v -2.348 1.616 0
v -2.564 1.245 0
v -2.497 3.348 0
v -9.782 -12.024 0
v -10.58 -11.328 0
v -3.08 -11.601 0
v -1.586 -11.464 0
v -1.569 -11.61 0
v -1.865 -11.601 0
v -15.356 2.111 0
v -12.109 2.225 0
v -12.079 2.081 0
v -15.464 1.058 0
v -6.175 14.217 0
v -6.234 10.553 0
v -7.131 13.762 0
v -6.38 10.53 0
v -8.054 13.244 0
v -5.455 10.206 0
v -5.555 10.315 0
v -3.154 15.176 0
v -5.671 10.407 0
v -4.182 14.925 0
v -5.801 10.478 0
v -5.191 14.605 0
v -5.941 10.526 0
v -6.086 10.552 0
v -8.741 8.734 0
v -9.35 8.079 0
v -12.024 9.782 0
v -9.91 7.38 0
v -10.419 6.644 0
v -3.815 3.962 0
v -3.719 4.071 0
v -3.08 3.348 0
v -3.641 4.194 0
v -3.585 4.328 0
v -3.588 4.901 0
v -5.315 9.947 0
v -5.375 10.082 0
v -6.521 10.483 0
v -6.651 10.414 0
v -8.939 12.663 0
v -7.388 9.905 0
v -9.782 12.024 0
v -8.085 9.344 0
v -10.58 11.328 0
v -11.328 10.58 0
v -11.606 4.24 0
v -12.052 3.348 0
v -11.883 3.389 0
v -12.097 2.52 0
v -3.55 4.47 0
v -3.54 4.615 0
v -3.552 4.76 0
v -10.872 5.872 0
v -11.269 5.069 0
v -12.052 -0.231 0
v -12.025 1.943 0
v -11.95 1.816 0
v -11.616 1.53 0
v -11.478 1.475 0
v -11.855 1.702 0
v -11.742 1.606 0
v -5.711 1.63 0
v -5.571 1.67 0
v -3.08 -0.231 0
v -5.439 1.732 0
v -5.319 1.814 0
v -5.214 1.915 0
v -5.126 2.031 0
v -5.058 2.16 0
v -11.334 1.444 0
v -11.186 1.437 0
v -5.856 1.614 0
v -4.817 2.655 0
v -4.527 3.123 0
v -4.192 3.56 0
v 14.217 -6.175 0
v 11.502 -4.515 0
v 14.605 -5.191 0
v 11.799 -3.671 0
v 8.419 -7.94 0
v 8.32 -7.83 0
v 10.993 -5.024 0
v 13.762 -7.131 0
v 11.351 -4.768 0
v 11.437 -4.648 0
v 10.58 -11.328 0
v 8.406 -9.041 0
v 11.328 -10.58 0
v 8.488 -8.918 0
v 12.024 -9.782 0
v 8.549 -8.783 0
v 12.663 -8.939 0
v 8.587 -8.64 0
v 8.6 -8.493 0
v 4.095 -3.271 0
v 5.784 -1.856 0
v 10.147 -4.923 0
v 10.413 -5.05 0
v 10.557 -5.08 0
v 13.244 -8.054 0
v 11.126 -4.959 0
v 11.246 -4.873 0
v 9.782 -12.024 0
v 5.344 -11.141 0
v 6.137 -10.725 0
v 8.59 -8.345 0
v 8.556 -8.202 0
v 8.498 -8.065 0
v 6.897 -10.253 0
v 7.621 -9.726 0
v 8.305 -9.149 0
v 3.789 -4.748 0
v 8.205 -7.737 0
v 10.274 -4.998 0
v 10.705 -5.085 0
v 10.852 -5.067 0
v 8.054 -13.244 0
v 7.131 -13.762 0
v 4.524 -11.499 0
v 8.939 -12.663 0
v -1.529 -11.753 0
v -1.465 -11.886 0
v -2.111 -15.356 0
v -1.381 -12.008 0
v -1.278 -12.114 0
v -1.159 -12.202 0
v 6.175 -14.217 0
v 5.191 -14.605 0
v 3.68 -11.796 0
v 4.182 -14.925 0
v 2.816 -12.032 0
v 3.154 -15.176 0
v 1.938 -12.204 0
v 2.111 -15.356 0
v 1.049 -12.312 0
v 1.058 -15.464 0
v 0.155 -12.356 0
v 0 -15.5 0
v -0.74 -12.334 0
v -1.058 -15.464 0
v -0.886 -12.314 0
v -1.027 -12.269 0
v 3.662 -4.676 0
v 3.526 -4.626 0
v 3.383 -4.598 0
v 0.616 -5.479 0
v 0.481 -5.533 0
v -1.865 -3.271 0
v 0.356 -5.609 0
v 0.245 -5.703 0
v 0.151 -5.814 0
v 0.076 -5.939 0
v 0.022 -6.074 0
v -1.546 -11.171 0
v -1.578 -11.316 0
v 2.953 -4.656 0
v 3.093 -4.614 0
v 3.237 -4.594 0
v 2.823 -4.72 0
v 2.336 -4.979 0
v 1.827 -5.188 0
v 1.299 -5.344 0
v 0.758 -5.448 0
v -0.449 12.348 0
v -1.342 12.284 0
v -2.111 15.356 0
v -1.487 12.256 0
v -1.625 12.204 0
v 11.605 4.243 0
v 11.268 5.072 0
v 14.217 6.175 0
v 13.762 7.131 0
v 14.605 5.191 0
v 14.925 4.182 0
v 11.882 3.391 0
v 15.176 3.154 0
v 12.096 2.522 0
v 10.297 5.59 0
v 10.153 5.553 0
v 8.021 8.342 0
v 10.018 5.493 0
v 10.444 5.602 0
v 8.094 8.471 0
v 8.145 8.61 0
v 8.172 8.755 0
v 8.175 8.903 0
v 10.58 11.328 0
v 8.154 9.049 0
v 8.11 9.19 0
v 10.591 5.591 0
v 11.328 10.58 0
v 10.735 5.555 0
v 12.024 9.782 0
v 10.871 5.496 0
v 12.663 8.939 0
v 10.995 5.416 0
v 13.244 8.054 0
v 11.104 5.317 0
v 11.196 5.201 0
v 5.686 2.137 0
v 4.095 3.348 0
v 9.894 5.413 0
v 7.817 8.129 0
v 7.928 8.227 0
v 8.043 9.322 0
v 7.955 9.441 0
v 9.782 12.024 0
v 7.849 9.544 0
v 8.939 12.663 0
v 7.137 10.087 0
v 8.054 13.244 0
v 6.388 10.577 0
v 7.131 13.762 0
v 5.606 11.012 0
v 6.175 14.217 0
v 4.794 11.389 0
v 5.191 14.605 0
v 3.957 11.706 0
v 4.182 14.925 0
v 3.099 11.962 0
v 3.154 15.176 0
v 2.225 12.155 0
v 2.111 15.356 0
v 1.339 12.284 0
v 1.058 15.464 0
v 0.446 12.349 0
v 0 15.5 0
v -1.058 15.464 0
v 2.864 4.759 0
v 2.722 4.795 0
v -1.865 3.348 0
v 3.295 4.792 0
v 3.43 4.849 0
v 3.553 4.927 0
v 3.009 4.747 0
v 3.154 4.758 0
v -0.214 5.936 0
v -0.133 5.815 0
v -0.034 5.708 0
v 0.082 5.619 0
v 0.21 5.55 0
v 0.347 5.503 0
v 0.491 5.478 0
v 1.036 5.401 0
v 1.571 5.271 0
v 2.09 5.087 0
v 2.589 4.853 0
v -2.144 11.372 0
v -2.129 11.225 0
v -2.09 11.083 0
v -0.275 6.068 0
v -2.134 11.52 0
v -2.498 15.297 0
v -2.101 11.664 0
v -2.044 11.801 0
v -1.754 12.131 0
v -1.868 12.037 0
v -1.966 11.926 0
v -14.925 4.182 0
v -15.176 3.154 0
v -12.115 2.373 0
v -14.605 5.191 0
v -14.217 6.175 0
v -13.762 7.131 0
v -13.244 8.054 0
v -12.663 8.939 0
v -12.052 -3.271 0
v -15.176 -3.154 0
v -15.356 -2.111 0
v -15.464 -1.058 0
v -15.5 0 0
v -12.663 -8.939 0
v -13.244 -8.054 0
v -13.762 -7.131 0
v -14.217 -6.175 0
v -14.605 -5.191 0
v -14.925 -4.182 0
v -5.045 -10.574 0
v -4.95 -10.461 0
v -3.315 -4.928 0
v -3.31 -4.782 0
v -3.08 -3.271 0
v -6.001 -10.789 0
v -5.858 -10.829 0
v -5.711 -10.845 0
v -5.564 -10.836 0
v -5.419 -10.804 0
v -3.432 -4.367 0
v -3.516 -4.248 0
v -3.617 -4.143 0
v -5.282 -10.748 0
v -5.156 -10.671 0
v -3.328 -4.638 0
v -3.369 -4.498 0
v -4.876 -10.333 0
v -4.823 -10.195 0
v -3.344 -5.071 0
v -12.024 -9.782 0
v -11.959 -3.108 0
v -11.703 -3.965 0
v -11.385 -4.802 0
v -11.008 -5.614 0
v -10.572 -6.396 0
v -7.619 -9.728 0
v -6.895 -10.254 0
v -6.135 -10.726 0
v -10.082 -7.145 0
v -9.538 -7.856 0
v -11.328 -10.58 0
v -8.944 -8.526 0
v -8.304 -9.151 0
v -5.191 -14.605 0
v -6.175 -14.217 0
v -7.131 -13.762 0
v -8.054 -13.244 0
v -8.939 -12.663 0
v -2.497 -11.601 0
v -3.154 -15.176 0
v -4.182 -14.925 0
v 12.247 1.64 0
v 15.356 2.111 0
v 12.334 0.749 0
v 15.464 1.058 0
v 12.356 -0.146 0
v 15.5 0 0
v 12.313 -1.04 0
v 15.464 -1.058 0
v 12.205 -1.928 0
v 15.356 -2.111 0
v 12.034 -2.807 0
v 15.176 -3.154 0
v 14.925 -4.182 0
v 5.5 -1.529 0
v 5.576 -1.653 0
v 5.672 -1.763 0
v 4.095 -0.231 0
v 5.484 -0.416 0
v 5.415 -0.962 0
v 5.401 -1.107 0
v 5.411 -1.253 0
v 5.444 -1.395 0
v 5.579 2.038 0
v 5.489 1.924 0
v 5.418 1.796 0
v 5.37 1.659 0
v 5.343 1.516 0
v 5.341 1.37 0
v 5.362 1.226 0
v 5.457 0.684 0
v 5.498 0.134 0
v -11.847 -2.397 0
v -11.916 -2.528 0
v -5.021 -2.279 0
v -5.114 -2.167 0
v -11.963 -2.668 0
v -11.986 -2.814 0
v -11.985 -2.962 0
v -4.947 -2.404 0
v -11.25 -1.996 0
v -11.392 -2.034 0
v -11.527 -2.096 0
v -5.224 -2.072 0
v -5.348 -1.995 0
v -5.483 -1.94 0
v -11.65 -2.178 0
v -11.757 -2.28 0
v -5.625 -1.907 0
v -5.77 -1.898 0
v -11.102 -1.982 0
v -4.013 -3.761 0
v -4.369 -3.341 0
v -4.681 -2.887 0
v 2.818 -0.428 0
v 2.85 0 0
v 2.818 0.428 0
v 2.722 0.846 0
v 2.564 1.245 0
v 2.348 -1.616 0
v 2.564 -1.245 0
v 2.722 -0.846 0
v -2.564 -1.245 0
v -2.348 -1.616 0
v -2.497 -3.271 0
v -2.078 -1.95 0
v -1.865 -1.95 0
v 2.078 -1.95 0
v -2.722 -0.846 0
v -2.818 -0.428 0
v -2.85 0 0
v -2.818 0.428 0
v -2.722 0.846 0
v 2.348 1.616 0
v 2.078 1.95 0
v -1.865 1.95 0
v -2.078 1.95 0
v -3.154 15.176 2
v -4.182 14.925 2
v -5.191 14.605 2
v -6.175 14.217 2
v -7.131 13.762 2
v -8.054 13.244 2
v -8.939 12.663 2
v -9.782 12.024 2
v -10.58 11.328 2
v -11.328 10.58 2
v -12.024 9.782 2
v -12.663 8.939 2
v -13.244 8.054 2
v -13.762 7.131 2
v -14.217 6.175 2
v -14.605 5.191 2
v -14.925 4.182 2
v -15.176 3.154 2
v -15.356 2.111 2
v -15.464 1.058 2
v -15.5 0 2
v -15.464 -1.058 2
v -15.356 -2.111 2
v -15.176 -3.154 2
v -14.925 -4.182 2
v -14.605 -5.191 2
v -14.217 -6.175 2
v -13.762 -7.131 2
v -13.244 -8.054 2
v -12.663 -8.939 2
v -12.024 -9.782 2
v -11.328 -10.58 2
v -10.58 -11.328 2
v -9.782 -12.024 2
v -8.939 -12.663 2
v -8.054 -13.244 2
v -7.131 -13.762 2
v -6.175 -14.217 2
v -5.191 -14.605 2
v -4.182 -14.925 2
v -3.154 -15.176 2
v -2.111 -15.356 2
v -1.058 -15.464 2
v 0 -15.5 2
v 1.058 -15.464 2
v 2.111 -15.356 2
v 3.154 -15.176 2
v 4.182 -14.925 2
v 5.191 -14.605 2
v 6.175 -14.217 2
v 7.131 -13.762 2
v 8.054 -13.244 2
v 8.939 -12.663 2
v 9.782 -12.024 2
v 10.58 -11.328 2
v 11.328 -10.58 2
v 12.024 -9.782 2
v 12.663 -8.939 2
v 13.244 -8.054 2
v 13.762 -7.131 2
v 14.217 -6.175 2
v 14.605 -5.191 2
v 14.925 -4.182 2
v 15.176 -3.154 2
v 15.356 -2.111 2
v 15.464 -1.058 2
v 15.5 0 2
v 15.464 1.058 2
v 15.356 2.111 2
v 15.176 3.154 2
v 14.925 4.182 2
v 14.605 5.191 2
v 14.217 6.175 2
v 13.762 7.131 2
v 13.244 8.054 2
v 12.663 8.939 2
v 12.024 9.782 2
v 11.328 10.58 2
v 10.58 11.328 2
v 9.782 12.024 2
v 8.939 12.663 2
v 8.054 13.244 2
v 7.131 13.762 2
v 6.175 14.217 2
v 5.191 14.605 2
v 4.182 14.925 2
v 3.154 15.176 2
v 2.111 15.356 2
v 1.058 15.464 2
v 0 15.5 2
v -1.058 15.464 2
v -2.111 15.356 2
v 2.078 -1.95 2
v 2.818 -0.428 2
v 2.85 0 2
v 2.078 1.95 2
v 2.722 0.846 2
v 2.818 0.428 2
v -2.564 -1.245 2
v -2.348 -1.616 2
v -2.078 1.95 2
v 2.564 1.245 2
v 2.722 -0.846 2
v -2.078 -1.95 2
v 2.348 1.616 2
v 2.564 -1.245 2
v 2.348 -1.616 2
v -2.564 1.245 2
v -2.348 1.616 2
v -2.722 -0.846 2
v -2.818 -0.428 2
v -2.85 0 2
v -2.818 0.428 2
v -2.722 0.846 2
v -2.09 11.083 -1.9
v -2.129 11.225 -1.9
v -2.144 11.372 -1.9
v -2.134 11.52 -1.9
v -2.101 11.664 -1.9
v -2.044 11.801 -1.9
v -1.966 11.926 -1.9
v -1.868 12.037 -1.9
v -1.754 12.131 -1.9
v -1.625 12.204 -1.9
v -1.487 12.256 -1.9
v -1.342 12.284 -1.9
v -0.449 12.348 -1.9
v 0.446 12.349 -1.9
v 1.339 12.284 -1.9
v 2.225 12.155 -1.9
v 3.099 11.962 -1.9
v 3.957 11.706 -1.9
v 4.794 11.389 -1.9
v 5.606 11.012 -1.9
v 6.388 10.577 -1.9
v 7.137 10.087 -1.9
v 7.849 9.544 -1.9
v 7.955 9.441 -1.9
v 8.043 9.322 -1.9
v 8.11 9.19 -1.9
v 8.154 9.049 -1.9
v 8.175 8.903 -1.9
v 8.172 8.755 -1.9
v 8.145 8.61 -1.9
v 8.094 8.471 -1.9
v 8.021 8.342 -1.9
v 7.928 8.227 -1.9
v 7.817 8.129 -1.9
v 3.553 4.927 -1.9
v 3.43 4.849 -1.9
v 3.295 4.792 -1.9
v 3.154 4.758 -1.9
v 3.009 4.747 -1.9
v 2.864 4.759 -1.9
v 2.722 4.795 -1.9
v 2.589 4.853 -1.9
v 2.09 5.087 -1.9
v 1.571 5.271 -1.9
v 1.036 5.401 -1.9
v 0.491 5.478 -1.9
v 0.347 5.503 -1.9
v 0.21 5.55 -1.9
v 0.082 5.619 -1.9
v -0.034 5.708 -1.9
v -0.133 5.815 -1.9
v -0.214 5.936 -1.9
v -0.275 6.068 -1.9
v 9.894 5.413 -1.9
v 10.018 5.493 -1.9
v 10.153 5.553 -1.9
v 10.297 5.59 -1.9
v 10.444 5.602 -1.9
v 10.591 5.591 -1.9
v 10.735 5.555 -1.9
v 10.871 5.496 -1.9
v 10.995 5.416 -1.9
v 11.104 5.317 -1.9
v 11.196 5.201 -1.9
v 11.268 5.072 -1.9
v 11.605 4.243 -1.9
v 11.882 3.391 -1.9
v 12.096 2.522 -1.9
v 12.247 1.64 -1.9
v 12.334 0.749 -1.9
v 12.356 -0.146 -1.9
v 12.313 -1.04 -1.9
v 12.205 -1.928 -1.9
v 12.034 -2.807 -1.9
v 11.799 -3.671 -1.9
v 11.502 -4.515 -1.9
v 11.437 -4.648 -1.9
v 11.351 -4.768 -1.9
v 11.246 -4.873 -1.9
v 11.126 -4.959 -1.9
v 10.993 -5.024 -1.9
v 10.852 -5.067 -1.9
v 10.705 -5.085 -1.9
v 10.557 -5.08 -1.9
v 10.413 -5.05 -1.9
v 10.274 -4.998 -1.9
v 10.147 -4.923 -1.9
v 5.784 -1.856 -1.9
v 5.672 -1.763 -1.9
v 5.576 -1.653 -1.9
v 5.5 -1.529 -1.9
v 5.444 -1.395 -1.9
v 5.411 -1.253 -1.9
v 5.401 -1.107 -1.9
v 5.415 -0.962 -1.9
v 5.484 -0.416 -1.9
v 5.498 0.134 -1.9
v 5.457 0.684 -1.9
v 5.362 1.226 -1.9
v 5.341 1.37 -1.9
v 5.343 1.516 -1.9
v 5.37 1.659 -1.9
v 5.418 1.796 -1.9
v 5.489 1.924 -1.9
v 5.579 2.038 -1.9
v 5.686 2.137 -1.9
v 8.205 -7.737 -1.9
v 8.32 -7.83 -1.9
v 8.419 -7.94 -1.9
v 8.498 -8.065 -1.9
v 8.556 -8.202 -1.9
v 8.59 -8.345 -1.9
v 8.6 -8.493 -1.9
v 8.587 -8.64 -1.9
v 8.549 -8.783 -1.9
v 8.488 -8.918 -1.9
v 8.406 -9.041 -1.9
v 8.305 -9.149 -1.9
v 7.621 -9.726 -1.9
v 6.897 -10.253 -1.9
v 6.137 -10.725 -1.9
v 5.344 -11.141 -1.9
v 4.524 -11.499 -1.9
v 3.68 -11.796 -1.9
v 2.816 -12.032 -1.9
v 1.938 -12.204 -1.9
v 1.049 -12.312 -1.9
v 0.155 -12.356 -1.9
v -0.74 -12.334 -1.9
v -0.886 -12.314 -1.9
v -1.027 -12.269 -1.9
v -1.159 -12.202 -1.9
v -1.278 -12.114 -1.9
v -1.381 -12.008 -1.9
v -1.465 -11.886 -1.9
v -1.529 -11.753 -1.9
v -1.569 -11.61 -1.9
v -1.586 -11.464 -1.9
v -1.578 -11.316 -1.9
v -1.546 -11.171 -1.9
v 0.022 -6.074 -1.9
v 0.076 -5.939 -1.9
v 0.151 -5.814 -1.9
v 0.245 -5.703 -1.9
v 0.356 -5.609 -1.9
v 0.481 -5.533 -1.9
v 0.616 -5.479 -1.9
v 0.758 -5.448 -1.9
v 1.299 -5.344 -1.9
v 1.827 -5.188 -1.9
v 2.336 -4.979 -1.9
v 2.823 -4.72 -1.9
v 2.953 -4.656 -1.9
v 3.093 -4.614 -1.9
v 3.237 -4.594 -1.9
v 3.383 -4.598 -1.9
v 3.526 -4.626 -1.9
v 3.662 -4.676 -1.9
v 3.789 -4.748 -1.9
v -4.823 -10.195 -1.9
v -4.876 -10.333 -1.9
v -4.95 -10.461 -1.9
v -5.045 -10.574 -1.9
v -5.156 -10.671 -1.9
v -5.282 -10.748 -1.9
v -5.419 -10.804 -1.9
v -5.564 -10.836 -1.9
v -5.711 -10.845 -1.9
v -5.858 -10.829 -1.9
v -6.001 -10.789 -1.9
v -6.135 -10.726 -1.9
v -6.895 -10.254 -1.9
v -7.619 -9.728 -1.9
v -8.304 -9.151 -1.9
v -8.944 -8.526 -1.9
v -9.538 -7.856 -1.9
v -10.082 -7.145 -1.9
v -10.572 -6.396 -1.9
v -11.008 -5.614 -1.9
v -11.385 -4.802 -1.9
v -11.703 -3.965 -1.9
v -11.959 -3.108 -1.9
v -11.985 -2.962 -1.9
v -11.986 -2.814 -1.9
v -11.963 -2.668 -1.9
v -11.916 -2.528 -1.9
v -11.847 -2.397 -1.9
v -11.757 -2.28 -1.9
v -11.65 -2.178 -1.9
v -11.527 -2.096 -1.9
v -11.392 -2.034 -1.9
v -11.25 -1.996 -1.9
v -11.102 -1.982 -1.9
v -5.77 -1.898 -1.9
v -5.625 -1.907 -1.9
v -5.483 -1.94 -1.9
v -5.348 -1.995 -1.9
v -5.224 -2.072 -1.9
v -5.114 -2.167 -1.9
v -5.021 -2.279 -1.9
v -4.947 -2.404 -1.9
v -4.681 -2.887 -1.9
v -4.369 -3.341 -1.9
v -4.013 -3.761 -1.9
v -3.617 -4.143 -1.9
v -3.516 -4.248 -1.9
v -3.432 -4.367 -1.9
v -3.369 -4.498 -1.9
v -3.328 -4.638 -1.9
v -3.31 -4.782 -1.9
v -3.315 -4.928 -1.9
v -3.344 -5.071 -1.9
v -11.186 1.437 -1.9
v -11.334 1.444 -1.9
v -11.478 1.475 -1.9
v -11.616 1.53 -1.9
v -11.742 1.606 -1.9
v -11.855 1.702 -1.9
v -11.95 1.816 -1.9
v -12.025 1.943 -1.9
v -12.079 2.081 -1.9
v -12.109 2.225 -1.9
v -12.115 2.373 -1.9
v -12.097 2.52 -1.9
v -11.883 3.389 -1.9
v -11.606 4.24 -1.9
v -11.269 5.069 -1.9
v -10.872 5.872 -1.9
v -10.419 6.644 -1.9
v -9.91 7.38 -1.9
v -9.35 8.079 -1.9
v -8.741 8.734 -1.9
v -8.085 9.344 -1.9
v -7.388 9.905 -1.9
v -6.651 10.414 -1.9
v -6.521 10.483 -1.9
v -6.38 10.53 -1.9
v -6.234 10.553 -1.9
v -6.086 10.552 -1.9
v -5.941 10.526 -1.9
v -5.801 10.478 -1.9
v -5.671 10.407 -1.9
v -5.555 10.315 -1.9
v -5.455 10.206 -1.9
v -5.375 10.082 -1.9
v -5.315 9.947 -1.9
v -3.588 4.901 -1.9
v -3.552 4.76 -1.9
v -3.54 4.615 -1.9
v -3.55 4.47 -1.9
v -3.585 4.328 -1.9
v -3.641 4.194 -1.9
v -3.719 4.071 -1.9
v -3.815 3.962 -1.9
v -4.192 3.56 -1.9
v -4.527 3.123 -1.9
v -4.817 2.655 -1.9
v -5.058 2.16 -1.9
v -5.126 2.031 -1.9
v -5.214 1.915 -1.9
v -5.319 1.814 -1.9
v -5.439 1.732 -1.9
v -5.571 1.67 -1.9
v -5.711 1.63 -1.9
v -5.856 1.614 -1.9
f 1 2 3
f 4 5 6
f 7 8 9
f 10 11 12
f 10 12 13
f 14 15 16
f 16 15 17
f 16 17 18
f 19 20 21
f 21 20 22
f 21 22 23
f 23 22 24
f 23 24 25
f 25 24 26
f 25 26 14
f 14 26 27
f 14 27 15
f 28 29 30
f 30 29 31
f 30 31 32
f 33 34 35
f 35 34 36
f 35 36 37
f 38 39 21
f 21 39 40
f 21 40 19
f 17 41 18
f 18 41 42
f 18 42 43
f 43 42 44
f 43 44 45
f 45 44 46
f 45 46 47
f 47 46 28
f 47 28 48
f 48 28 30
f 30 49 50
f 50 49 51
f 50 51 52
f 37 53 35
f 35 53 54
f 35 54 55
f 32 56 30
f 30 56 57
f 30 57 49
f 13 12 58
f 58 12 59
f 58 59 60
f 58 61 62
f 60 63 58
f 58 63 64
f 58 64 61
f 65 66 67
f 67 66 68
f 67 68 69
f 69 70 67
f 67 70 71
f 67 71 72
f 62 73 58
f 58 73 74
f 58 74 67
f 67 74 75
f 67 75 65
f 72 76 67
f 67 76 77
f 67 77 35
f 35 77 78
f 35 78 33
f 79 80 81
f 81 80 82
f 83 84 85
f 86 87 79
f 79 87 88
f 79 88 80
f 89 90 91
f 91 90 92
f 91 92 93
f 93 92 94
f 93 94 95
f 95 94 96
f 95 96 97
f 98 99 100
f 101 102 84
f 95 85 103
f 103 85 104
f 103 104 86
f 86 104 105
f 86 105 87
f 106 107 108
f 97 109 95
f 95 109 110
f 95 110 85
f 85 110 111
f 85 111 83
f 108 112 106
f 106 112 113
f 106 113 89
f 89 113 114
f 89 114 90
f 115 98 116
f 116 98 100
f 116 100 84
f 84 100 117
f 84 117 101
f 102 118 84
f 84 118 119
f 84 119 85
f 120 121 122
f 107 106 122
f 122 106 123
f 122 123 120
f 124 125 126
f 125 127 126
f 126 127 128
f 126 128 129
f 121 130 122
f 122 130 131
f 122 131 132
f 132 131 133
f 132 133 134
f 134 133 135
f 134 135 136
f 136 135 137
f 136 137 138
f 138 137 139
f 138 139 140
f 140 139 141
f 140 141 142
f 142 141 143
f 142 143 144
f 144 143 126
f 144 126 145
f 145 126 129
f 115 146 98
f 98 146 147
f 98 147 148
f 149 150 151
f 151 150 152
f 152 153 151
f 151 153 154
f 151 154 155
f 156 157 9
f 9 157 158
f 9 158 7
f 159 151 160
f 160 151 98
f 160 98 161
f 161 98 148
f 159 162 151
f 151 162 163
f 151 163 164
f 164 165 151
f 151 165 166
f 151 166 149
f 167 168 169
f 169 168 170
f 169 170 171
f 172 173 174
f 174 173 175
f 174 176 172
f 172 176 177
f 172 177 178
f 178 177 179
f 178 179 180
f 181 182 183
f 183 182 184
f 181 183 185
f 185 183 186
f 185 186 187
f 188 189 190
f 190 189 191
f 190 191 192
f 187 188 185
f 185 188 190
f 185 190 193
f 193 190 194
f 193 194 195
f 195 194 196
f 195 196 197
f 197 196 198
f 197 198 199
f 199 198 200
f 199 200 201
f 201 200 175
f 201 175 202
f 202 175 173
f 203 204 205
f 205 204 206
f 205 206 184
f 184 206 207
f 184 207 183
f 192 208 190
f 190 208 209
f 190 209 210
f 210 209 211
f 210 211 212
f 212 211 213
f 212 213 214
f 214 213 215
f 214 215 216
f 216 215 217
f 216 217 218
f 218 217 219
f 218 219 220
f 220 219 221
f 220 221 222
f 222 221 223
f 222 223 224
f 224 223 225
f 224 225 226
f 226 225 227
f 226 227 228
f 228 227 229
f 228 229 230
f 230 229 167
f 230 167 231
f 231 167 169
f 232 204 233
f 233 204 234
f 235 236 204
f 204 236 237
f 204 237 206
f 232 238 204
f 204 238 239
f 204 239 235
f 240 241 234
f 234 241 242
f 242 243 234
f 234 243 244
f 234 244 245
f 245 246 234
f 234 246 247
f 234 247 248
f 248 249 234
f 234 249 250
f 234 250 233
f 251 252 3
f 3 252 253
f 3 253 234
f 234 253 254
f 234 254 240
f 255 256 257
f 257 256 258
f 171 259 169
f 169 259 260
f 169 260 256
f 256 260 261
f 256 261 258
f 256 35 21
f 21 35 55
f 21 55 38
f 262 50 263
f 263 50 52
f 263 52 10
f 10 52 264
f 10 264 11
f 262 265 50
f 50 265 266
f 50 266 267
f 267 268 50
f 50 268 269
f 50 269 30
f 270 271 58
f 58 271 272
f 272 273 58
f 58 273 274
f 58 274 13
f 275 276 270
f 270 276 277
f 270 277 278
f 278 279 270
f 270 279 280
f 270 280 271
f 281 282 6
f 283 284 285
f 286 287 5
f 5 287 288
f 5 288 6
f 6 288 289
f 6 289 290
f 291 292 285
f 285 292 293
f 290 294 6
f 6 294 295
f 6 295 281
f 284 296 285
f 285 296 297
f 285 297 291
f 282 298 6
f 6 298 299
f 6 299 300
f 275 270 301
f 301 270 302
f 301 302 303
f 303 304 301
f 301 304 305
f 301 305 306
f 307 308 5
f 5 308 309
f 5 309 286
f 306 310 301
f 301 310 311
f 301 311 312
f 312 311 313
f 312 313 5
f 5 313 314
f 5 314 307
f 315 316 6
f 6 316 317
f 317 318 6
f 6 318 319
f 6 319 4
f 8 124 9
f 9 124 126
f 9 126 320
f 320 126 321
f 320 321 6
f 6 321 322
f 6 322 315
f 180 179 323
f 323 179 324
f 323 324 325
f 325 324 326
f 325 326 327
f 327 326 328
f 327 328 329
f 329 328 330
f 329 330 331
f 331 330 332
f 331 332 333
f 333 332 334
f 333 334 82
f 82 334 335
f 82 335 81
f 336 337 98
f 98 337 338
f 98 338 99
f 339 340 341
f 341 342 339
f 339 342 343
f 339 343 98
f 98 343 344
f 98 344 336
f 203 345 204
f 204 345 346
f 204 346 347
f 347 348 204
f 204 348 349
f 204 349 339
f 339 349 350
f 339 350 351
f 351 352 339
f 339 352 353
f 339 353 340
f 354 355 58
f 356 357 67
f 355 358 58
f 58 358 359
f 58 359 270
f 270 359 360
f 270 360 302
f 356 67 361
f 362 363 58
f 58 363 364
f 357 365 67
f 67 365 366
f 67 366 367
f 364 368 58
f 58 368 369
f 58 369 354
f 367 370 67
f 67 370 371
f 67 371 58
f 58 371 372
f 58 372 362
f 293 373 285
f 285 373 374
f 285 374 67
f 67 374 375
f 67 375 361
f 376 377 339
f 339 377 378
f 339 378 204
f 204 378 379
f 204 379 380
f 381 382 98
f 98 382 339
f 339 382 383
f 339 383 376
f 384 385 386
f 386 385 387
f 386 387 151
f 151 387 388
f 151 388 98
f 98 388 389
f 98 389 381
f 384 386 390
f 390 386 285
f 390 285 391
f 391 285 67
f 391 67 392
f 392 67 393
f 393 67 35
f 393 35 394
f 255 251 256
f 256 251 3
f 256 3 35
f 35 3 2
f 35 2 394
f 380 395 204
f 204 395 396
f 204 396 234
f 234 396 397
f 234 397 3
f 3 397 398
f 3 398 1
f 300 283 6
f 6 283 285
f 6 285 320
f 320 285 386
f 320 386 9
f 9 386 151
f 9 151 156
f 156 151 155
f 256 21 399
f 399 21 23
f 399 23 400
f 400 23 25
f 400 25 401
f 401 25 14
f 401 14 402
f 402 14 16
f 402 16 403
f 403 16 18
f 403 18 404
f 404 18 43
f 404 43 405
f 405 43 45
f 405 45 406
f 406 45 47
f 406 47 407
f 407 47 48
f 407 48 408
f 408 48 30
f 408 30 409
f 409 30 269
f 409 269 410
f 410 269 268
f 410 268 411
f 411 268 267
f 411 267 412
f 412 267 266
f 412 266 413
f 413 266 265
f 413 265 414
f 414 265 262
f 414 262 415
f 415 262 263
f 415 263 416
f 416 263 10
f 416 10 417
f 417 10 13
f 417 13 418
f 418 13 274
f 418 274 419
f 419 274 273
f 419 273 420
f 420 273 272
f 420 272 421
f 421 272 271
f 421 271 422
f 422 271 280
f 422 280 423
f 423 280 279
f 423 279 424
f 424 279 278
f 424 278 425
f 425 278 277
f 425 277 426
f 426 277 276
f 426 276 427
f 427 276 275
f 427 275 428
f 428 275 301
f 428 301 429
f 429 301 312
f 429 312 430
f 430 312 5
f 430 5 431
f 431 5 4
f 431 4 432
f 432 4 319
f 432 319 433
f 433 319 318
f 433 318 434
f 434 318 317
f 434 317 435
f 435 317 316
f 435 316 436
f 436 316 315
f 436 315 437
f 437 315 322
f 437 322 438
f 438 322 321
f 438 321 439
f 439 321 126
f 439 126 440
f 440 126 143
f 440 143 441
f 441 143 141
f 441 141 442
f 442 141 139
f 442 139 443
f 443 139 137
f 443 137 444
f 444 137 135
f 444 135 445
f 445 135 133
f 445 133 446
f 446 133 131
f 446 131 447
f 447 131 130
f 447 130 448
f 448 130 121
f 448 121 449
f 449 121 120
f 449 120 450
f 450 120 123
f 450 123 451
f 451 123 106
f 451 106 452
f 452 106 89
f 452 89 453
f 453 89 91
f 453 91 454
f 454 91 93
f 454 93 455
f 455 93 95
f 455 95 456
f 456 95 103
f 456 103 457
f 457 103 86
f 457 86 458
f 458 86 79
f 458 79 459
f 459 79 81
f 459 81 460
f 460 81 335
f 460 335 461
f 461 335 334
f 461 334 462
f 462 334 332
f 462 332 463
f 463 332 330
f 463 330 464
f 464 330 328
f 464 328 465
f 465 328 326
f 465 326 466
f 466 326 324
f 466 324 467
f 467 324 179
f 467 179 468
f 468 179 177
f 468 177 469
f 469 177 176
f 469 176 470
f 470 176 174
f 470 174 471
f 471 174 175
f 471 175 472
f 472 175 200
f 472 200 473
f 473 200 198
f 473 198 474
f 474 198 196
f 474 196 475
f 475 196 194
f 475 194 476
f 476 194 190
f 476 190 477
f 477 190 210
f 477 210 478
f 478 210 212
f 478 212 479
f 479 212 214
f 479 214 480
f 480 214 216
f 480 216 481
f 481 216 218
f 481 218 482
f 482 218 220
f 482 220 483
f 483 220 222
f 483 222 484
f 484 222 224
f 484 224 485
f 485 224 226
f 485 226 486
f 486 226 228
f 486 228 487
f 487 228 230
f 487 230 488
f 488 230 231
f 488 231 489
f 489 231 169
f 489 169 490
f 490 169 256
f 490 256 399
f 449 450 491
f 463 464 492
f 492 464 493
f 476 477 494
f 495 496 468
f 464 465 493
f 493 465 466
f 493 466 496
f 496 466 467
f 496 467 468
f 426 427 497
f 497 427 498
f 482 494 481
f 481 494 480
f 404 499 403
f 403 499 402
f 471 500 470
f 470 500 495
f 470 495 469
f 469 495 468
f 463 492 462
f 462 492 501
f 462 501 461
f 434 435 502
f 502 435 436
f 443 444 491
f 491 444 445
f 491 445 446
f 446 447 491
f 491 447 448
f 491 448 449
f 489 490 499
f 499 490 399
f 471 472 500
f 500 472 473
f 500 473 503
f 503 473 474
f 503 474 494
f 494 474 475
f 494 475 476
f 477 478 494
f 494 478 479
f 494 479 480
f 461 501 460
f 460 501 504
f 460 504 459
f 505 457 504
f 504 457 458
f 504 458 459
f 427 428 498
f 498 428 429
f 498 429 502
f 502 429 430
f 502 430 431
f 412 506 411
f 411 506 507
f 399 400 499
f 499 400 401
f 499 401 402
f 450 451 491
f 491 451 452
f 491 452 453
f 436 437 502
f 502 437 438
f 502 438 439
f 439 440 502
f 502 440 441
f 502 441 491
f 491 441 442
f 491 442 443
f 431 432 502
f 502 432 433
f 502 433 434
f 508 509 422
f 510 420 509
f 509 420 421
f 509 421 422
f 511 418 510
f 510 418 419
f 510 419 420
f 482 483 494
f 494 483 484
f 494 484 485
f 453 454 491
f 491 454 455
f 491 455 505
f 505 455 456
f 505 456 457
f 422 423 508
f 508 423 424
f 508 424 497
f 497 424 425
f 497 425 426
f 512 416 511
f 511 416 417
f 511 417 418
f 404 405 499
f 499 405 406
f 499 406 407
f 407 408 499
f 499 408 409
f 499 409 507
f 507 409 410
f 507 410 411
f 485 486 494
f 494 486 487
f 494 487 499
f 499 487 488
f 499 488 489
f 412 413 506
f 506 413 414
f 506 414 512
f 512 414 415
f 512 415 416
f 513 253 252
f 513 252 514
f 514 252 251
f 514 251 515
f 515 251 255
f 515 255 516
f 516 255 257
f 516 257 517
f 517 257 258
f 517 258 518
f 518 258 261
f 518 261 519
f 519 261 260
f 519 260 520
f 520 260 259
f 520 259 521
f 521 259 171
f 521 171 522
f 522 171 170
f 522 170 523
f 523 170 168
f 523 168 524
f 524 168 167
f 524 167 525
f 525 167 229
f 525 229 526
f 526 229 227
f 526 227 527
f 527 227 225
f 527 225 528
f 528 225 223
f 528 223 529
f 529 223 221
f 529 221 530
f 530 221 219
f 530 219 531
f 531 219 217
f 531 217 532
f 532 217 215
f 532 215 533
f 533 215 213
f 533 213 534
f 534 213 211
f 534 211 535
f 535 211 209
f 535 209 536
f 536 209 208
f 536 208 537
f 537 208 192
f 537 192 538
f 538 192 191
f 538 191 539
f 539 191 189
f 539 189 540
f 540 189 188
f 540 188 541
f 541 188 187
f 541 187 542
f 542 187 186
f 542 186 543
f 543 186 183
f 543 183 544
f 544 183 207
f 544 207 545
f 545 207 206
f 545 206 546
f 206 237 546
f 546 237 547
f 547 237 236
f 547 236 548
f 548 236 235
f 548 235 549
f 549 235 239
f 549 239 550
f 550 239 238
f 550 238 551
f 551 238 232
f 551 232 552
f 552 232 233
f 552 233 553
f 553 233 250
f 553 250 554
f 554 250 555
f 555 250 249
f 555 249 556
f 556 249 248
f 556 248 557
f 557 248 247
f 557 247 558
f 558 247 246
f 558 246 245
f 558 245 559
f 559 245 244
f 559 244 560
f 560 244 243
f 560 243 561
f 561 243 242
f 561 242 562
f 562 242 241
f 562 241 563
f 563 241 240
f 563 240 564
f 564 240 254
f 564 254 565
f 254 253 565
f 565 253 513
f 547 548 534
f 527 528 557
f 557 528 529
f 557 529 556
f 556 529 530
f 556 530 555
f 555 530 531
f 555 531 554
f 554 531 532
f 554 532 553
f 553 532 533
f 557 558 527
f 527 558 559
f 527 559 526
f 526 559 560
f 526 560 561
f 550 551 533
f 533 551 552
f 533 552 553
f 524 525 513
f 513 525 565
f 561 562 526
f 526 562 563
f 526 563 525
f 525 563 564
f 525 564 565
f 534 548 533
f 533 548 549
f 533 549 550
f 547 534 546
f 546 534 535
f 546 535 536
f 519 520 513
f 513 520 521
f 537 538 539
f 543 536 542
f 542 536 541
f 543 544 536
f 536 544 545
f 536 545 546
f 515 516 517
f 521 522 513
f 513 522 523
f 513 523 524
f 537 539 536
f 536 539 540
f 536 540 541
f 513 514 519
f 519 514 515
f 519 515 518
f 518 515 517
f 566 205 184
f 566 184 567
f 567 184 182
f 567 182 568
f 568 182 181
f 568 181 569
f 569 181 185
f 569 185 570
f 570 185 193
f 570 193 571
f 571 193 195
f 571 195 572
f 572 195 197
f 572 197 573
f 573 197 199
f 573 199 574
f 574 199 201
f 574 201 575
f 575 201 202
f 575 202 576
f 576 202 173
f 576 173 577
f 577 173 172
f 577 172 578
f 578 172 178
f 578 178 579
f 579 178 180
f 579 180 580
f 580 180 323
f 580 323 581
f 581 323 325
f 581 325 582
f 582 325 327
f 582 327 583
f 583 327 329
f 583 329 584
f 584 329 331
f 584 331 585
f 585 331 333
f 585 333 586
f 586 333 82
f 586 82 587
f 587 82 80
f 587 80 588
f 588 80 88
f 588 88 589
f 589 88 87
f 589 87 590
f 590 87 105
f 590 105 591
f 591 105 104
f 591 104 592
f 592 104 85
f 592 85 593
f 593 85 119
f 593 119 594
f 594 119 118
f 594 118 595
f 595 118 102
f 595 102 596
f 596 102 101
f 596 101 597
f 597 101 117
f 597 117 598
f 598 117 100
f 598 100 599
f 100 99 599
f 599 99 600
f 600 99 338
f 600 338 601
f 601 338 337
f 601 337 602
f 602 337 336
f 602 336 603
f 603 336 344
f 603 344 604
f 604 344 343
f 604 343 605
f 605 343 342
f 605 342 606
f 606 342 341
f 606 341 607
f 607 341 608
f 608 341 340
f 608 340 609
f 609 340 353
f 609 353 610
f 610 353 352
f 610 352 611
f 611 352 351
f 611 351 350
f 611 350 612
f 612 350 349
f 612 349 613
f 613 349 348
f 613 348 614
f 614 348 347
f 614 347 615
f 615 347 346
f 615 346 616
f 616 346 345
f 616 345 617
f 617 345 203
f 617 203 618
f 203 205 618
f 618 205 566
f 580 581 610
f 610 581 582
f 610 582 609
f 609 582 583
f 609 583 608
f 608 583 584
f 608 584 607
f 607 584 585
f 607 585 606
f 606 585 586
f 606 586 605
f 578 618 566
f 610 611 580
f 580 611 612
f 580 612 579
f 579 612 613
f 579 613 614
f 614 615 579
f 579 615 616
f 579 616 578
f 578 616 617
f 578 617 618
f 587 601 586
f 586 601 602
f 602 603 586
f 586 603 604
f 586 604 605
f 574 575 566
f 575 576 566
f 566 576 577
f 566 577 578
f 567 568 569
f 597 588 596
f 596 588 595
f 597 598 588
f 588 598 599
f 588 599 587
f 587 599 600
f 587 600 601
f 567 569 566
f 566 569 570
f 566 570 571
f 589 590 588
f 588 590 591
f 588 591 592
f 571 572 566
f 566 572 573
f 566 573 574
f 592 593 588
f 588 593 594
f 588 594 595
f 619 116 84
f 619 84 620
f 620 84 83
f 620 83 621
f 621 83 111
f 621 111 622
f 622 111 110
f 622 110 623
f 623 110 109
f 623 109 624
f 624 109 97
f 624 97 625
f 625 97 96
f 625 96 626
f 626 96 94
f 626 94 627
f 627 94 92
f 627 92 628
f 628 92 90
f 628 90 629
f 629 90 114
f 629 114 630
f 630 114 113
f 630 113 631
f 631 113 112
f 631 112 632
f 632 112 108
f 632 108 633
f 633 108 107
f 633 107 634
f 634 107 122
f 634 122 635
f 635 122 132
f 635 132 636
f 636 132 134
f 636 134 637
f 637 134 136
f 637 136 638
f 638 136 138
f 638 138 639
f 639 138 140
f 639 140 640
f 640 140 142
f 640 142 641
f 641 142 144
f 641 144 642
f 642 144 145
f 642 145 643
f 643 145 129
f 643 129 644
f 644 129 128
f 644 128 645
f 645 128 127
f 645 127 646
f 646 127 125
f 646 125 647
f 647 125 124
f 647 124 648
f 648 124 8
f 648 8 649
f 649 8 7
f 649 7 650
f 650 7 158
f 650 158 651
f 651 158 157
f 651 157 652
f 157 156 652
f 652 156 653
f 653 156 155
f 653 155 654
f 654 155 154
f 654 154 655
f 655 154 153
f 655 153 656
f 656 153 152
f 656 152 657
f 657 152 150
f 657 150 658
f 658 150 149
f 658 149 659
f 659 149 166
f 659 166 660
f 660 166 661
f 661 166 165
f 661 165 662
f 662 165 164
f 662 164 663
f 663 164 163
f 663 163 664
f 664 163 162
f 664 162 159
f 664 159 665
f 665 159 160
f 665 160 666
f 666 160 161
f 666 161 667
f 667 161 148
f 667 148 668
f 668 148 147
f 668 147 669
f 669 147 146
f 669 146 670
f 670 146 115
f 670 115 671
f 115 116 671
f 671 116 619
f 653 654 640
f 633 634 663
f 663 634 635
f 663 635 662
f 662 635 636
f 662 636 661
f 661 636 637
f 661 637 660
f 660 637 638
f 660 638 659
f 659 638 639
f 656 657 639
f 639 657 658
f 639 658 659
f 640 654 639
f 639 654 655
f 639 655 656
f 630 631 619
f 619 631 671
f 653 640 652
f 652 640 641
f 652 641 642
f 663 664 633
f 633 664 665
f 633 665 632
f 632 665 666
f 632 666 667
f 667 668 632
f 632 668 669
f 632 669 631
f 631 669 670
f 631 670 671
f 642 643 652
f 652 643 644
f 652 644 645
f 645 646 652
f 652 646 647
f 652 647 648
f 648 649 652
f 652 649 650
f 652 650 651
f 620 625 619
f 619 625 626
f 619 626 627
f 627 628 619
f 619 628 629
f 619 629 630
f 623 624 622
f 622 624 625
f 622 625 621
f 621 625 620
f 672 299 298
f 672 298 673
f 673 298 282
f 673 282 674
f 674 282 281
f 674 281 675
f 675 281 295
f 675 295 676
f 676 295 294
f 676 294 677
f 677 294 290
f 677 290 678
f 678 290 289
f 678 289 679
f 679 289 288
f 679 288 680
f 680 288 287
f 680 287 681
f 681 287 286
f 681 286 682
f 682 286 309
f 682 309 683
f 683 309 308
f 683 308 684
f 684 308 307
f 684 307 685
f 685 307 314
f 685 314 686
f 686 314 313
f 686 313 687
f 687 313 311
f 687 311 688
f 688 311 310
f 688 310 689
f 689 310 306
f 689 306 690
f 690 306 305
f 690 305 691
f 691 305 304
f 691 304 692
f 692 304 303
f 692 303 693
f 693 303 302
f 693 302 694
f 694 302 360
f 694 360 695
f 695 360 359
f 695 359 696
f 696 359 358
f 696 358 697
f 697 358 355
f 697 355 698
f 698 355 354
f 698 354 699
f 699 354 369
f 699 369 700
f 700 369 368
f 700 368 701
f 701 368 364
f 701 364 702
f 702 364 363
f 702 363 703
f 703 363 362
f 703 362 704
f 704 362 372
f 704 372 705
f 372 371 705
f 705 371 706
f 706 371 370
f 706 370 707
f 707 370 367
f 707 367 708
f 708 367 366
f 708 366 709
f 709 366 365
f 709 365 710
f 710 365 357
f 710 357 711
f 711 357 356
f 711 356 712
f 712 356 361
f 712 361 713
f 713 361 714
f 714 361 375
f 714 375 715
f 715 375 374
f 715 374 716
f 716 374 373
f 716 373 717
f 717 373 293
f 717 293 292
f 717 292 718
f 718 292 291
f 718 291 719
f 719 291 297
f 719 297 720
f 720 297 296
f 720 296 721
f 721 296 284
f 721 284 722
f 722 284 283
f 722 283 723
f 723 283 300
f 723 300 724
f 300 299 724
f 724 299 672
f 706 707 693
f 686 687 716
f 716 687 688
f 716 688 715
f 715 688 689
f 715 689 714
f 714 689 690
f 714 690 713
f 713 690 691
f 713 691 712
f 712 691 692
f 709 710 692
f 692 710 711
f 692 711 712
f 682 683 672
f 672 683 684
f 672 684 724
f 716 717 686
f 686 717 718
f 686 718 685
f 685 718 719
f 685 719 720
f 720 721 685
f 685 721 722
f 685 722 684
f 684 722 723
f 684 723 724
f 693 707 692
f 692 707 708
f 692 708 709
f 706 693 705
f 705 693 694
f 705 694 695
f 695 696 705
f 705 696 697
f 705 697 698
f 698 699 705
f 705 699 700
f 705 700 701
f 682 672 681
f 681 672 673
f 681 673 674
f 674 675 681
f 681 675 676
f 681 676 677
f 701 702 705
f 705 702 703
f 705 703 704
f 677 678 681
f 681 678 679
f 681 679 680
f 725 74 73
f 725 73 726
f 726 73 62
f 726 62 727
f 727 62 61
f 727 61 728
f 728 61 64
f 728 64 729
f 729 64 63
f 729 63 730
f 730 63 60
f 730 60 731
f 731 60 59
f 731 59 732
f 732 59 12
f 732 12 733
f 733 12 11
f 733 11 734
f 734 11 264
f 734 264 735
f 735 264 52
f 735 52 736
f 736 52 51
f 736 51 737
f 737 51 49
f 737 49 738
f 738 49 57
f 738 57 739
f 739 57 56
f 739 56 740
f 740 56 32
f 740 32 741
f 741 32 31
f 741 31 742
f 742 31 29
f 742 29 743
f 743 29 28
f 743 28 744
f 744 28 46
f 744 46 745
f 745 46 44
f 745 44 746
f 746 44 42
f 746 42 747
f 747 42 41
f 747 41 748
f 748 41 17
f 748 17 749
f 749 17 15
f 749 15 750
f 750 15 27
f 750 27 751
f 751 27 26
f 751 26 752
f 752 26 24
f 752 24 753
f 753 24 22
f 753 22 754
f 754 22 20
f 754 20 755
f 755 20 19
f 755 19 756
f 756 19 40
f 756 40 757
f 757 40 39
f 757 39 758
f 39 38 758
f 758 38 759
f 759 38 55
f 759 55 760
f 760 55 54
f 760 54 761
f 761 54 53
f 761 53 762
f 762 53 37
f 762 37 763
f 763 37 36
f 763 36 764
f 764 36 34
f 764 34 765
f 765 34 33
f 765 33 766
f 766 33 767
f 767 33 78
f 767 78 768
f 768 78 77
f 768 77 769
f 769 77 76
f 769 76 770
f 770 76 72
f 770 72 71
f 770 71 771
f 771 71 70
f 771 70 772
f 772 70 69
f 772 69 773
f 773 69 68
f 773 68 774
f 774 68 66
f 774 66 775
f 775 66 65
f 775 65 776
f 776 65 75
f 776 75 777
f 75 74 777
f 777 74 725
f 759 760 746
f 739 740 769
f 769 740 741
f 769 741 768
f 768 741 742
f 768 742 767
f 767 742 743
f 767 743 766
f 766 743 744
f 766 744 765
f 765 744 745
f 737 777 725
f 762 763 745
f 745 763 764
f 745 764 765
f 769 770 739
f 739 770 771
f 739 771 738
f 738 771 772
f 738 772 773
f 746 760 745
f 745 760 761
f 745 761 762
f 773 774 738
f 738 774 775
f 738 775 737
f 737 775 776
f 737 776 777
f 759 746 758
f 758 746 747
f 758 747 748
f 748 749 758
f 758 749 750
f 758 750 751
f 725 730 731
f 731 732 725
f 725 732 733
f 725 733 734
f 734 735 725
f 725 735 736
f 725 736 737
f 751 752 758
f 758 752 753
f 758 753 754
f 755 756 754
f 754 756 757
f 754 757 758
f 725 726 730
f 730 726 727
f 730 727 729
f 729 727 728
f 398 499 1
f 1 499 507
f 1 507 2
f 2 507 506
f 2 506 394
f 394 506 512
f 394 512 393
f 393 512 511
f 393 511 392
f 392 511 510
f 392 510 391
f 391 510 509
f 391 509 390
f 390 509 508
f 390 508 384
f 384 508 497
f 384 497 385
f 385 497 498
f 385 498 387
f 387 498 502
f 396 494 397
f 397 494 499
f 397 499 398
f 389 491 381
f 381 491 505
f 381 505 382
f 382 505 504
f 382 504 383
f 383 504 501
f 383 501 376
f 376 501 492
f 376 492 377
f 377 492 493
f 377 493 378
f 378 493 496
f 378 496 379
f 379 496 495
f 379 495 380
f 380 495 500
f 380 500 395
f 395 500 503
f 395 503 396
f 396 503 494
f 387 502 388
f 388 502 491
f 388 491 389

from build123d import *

# Parameters (mm, degrees)
SKETCH1_R           = 15.5
BOSS_EXTRUDE1_DEPTH = 2
BOSS_EXTRUDE2_DEPTH = 1.9
CIRPATTERN1_COUNT   = 5
CUT_EXTRUDE2_DEPTH  = 4.9


with BuildPart() as part:
    # Sketch1 → Boss-Extrude1 (new body)
    with BuildSketch(Plane.XY):
        Circle(SKETCH1_R)
    extrude(amount=BOSS_EXTRUDE1_DEPTH)

    # Sketch2 → Boss-Extrude2 (add)
    with BuildSketch(Plane(origin=(0, 0, 0), x_dir=(-1, 0, 0), z_dir=(0, 0, -1))):
        with BuildLine():
            Line((-7.817353518, 8.129035943), (-3.552701535, 4.927044661))
            ThreePointArc((-3.552701535, 4.927044661), (-3.081541521, 4.749426556), (-2.588715364, 4.852685109))
            ThreePointArc((-2.588715364, 4.852685109), (-1.571286021, 5.27077416), (-0.491007267, 5.478039053))
            ThreePointArc((-0.491007267, 5.478039053), (-0.022087339, 5.66148946), (0.274905404, 6.068103848))
            Line((0.274905404, 6.068103848), (2.090121325, 11.082582471))
            ThreePointArc((2.090121325, 11.082582471), (2.007658151, 11.864965509), (1.341576089, 12.283603874))
            ThreePointArc((1.341576089, 12.283603874), (-3.530150602, 11.841654752), (-7.848632729, 9.543883635))
            ThreePointArc((-7.848632729, 9.543883635), (-8.176755455, 8.82885995), (-7.817353518, 8.129035943))
        make_face()
    boss_extrude2 = extrude(amount=BOSS_EXTRUDE2_DEPTH)

    # CirPattern1: Boss-Extrude2 ×5 about axis
    cirpattern1_axis = Axis((0, 0, 0), (0, 0, 1))
    for i in range(1, CIRPATTERN1_COUNT):
        add(boss_extrude2.rotate(cirpattern1_axis, i * 360 / CIRPATTERN1_COUNT))

    # Sketch5 → Cut-Extrude2 (cut, through all)
    with BuildSketch(Plane.XY.offset(2)):
        with BuildLine():
            Line((-2.078460969, 1.95), (2.078460969, 1.95))
            ThreePointArc((2.078460969, 1.95), (2.85, 0), (2.078460969, -1.95))
            Line((2.078460969, -1.95), (-2.078460969, -1.95))
            ThreePointArc((-2.078460969, -1.95), (-2.85, 0), (-2.078460969, 1.95))
        make_face()
    extrude(amount=-CUT_EXTRUDE2_DEPTH, mode=Mode.SUBTRACT)


solid = part.part
